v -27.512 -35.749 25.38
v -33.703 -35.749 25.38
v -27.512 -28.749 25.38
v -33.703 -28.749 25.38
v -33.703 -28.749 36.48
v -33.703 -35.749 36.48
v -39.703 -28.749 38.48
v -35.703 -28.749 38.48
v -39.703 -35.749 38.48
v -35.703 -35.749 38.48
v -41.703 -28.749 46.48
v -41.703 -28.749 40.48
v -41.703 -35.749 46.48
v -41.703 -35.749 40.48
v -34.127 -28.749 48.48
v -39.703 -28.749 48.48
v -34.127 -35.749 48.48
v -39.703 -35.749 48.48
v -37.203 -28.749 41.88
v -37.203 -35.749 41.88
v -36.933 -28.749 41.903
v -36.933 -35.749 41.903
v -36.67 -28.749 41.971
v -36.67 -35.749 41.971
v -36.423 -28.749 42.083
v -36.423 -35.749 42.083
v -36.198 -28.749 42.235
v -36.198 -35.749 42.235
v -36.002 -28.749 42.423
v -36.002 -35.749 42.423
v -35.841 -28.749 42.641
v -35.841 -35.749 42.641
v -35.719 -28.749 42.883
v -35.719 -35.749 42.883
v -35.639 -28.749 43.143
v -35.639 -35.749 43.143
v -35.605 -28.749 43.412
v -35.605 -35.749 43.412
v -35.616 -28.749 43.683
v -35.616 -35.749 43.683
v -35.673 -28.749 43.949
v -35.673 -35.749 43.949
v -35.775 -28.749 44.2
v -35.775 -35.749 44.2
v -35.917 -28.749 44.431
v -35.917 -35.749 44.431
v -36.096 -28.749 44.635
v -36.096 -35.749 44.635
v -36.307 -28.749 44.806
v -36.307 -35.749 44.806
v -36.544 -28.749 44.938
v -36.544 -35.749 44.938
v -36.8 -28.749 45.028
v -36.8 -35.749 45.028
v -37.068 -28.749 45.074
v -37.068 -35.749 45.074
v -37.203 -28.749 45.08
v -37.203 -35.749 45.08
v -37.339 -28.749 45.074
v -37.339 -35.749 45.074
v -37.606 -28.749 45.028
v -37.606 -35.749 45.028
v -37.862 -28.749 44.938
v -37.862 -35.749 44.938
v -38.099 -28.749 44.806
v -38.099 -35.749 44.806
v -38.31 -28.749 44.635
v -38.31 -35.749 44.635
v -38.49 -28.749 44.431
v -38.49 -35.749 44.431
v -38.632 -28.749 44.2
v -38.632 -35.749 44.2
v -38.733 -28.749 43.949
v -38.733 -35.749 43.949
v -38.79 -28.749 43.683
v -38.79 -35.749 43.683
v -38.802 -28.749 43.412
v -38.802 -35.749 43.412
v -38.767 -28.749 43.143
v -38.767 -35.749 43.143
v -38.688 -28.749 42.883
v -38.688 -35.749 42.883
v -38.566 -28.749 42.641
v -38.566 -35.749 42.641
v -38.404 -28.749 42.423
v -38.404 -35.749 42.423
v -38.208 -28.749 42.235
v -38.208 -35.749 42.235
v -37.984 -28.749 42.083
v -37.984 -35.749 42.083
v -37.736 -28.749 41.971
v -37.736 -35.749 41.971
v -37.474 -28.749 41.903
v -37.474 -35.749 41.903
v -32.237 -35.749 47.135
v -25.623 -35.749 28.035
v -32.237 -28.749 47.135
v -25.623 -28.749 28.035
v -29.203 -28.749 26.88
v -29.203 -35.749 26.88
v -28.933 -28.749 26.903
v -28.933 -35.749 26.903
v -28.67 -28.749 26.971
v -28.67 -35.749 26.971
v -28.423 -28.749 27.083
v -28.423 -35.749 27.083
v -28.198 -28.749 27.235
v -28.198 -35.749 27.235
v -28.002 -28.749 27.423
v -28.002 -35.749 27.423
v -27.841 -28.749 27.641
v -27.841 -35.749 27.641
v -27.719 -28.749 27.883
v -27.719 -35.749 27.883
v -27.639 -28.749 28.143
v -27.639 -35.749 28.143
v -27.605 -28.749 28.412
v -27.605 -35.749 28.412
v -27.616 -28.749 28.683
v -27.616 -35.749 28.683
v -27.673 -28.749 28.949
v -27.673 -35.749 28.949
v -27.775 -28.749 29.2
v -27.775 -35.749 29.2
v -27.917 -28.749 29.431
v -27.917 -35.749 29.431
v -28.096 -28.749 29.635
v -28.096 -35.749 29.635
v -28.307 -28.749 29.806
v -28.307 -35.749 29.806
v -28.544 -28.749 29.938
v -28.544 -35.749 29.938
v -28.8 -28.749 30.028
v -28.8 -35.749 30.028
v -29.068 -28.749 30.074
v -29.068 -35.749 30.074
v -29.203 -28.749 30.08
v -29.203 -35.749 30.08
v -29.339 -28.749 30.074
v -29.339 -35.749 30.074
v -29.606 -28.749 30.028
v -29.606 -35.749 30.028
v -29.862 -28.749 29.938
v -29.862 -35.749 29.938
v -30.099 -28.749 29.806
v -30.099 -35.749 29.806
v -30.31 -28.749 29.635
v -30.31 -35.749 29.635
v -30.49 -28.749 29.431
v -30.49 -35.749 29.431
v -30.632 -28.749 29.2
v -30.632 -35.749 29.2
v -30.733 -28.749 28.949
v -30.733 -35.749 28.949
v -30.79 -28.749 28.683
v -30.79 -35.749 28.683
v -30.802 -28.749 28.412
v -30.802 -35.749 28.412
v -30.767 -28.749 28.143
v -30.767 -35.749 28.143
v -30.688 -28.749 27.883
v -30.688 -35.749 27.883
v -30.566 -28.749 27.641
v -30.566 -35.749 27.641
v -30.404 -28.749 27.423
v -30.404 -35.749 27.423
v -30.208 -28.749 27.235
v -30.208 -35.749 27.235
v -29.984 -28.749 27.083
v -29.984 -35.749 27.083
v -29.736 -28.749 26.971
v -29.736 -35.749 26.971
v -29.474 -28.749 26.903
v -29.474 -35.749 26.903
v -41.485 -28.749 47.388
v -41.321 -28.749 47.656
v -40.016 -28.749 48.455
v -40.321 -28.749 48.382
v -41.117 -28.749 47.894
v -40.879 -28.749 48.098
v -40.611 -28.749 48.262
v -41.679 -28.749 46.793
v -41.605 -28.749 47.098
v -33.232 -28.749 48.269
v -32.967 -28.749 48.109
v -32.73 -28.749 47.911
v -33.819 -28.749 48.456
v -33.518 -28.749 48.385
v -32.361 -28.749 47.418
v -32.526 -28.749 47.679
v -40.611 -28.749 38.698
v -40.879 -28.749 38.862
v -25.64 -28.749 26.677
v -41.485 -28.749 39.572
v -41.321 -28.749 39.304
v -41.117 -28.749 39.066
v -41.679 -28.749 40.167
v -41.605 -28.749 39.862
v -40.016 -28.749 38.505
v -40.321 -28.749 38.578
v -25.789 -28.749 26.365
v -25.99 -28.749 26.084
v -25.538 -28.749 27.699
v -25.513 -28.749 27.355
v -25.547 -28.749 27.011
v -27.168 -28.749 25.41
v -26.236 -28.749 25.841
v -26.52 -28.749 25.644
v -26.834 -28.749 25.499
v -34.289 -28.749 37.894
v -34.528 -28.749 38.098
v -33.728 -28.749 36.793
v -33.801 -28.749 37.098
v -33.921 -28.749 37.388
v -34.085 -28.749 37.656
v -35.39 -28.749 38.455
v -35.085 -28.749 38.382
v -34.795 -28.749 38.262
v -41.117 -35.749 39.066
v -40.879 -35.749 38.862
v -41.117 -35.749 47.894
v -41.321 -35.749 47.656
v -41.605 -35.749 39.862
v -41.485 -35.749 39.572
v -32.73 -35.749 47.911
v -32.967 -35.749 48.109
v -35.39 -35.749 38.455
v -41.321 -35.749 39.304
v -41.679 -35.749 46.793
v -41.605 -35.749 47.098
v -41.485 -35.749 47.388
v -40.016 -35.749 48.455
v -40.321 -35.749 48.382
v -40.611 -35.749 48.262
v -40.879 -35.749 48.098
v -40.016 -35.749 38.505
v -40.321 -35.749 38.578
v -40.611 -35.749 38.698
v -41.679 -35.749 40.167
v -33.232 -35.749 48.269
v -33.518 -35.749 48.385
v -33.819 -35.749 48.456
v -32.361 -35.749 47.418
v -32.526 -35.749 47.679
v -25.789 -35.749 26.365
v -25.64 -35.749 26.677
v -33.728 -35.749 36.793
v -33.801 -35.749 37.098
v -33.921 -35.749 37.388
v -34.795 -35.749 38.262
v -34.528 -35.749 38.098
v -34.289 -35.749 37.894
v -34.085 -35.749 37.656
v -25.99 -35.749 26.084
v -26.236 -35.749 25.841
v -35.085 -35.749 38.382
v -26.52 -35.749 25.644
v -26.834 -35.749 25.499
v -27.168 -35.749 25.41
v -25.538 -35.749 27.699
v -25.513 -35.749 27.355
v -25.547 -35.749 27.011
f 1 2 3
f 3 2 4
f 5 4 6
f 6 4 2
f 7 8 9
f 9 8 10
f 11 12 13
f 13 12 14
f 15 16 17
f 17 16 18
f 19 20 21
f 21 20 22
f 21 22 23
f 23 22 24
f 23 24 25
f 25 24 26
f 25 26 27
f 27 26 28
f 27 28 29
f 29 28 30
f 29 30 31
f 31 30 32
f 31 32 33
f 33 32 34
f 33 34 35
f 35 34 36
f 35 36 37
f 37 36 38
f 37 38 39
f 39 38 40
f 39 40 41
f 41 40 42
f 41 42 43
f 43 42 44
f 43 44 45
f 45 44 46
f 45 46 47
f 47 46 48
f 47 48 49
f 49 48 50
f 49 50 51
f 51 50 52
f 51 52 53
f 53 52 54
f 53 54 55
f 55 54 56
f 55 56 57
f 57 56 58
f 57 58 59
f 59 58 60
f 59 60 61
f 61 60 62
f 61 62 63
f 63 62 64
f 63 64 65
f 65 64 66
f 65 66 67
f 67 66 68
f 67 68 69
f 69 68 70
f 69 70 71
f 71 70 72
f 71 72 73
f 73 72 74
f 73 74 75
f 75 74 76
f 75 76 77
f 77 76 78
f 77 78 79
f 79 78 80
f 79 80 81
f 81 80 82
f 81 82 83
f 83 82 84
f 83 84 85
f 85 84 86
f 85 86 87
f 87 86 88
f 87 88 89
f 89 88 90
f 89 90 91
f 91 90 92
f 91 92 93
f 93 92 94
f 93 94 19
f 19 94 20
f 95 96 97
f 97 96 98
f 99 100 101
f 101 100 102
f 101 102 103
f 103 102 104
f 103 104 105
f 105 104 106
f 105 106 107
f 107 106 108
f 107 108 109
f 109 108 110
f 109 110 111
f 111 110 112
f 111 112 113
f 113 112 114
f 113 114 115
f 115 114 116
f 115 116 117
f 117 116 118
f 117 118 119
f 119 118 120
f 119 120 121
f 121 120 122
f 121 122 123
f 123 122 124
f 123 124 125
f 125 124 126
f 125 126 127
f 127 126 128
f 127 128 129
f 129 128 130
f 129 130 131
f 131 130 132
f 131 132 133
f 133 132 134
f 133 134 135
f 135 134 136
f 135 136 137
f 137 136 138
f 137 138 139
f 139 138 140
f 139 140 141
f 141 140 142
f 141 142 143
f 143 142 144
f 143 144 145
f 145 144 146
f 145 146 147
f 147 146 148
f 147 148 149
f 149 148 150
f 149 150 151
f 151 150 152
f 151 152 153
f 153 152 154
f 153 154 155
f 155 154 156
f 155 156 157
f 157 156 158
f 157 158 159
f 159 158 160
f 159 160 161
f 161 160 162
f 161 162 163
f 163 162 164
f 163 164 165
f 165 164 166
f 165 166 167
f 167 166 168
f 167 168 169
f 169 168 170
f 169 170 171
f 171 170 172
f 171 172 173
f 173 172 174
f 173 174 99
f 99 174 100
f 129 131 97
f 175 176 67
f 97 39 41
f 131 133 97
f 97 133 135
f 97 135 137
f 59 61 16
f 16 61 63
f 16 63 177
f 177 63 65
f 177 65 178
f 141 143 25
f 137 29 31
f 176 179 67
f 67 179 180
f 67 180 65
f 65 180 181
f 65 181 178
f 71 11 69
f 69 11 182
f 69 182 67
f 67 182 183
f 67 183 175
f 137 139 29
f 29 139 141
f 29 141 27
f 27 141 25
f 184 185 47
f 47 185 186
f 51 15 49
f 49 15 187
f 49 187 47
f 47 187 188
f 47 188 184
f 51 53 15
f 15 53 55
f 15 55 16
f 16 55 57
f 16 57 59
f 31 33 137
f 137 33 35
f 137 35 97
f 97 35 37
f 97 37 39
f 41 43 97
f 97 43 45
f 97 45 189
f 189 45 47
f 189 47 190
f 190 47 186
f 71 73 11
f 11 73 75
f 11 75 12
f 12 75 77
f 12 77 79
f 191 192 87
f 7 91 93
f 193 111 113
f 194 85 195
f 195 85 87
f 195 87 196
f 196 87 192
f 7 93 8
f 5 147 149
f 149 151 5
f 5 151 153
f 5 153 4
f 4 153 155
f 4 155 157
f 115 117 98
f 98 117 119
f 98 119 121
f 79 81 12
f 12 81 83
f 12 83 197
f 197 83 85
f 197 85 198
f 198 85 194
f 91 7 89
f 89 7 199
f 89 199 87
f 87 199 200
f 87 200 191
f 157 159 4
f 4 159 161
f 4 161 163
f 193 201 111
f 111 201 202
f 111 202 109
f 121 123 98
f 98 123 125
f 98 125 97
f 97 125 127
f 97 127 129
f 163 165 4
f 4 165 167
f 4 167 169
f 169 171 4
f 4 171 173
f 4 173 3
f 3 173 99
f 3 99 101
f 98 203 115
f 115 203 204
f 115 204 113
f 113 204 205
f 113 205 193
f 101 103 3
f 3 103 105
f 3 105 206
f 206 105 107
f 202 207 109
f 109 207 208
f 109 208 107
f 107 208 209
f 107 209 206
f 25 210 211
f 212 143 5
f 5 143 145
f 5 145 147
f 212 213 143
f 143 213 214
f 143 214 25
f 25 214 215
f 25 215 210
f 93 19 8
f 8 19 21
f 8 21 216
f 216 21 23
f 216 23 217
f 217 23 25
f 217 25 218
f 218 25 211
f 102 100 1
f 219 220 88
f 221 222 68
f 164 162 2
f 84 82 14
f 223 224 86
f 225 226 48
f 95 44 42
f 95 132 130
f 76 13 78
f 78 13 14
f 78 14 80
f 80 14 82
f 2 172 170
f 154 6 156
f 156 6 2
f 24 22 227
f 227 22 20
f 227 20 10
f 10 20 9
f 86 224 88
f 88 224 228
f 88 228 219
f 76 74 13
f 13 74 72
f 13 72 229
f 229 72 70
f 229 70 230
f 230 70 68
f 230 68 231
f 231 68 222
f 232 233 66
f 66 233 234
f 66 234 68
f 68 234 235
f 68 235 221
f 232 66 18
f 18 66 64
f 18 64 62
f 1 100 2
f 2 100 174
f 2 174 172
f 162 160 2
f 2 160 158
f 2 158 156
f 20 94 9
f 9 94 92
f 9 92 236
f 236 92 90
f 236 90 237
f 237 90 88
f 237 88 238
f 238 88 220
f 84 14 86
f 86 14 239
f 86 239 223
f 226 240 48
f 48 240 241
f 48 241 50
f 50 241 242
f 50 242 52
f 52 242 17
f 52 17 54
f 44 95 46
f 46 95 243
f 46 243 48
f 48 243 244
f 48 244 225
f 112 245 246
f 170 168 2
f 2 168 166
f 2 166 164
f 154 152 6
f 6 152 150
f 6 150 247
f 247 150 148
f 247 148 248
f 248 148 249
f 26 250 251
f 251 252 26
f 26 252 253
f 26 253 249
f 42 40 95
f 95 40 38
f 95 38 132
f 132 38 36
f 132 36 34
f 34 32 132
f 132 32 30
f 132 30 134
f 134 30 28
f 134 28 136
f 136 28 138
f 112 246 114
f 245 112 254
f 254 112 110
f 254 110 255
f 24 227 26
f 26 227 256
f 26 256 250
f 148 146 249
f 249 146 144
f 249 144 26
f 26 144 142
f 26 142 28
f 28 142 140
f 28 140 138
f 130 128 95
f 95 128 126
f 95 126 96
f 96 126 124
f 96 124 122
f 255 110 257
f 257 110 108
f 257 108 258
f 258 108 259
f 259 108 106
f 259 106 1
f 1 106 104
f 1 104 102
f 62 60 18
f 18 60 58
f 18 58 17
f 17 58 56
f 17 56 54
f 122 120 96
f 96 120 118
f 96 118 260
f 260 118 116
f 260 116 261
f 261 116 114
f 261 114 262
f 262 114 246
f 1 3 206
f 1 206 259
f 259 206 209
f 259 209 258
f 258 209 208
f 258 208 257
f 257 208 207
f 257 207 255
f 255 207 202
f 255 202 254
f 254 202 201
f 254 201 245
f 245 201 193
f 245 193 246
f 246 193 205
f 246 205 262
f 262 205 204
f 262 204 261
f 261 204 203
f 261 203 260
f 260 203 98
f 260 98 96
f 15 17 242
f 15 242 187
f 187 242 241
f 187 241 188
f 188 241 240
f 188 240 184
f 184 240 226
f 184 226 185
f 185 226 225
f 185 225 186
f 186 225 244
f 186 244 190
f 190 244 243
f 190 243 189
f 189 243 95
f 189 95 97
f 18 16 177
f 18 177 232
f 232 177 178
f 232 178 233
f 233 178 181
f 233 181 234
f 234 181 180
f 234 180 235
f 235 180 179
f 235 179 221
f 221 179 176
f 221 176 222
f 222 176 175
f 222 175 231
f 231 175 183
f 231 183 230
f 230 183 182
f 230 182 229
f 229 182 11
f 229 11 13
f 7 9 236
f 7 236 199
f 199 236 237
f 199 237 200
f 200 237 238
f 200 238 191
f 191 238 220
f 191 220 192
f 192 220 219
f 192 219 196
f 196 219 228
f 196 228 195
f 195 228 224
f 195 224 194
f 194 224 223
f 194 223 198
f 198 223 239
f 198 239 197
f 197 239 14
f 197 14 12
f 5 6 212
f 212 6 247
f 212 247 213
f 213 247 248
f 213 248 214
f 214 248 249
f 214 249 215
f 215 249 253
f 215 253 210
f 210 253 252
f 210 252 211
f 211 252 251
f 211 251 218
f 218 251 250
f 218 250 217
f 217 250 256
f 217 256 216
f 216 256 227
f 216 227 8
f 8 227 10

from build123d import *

# Parameters (mm, degrees)
SKETCH2_R           = 1.6
BOSS_EXTRUDE1_DEPTH = 7
FILLET1_R           = 2
FILLET2_R           = 2


with BuildPart() as part:
    # Sketch2 → Boss-Extrude1 (new body)
    with BuildSketch(Plane(origin=(0, -35.748750458, 0), x_dir=(1, 0, 0), z_dir=(0, 1, 0))):
        Polygon((-41.703283355, -38.480035415), (-41.703283355, -48.480035415), (-32.703283355, -48.480035415), (-24.703283355, -25.380229921), (-33.703283355, -25.380229921), (-33.703283355, -38.480035415), (-40.703283355, -38.480035415), align=None)
        with Locations(Location((-37.203283355, -43.480035415, 0), (0, 0, 270))):
            Circle(SKETCH2_R, mode=Mode.SUBTRACT)
        with Locations(Location((-29.203283355, -28.480035415, 0), (0, 0, 270))):
            Circle(SKETCH2_R, mode=Mode.SUBTRACT)
    extrude(amount=BOSS_EXTRUDE1_DEPTH)

    # Fillet1
    fillet1_edges = [part.edges().sort_by_distance(p)[0] for p in [
        (-24.703283355, -32.248750458, 25.380229921),
    ]]
    fillet(fillet1_edges, radius=FILLET1_R)

    # Fillet2
    fillet2_edges = [part.edges().sort_by_distance(p)[0] for p in [
        (-32.703283355, -32.248750458, 48.480035415),
        (-41.703283355, -32.248750458, 48.480035415),
        (-41.703283355, -32.248750458, 38.480035415),
        (-33.703283355, -32.248750458, 38.480035415),
    ]]
    fillet(fillet2_edges, radius=FILLET2_R)


solid = part.part
